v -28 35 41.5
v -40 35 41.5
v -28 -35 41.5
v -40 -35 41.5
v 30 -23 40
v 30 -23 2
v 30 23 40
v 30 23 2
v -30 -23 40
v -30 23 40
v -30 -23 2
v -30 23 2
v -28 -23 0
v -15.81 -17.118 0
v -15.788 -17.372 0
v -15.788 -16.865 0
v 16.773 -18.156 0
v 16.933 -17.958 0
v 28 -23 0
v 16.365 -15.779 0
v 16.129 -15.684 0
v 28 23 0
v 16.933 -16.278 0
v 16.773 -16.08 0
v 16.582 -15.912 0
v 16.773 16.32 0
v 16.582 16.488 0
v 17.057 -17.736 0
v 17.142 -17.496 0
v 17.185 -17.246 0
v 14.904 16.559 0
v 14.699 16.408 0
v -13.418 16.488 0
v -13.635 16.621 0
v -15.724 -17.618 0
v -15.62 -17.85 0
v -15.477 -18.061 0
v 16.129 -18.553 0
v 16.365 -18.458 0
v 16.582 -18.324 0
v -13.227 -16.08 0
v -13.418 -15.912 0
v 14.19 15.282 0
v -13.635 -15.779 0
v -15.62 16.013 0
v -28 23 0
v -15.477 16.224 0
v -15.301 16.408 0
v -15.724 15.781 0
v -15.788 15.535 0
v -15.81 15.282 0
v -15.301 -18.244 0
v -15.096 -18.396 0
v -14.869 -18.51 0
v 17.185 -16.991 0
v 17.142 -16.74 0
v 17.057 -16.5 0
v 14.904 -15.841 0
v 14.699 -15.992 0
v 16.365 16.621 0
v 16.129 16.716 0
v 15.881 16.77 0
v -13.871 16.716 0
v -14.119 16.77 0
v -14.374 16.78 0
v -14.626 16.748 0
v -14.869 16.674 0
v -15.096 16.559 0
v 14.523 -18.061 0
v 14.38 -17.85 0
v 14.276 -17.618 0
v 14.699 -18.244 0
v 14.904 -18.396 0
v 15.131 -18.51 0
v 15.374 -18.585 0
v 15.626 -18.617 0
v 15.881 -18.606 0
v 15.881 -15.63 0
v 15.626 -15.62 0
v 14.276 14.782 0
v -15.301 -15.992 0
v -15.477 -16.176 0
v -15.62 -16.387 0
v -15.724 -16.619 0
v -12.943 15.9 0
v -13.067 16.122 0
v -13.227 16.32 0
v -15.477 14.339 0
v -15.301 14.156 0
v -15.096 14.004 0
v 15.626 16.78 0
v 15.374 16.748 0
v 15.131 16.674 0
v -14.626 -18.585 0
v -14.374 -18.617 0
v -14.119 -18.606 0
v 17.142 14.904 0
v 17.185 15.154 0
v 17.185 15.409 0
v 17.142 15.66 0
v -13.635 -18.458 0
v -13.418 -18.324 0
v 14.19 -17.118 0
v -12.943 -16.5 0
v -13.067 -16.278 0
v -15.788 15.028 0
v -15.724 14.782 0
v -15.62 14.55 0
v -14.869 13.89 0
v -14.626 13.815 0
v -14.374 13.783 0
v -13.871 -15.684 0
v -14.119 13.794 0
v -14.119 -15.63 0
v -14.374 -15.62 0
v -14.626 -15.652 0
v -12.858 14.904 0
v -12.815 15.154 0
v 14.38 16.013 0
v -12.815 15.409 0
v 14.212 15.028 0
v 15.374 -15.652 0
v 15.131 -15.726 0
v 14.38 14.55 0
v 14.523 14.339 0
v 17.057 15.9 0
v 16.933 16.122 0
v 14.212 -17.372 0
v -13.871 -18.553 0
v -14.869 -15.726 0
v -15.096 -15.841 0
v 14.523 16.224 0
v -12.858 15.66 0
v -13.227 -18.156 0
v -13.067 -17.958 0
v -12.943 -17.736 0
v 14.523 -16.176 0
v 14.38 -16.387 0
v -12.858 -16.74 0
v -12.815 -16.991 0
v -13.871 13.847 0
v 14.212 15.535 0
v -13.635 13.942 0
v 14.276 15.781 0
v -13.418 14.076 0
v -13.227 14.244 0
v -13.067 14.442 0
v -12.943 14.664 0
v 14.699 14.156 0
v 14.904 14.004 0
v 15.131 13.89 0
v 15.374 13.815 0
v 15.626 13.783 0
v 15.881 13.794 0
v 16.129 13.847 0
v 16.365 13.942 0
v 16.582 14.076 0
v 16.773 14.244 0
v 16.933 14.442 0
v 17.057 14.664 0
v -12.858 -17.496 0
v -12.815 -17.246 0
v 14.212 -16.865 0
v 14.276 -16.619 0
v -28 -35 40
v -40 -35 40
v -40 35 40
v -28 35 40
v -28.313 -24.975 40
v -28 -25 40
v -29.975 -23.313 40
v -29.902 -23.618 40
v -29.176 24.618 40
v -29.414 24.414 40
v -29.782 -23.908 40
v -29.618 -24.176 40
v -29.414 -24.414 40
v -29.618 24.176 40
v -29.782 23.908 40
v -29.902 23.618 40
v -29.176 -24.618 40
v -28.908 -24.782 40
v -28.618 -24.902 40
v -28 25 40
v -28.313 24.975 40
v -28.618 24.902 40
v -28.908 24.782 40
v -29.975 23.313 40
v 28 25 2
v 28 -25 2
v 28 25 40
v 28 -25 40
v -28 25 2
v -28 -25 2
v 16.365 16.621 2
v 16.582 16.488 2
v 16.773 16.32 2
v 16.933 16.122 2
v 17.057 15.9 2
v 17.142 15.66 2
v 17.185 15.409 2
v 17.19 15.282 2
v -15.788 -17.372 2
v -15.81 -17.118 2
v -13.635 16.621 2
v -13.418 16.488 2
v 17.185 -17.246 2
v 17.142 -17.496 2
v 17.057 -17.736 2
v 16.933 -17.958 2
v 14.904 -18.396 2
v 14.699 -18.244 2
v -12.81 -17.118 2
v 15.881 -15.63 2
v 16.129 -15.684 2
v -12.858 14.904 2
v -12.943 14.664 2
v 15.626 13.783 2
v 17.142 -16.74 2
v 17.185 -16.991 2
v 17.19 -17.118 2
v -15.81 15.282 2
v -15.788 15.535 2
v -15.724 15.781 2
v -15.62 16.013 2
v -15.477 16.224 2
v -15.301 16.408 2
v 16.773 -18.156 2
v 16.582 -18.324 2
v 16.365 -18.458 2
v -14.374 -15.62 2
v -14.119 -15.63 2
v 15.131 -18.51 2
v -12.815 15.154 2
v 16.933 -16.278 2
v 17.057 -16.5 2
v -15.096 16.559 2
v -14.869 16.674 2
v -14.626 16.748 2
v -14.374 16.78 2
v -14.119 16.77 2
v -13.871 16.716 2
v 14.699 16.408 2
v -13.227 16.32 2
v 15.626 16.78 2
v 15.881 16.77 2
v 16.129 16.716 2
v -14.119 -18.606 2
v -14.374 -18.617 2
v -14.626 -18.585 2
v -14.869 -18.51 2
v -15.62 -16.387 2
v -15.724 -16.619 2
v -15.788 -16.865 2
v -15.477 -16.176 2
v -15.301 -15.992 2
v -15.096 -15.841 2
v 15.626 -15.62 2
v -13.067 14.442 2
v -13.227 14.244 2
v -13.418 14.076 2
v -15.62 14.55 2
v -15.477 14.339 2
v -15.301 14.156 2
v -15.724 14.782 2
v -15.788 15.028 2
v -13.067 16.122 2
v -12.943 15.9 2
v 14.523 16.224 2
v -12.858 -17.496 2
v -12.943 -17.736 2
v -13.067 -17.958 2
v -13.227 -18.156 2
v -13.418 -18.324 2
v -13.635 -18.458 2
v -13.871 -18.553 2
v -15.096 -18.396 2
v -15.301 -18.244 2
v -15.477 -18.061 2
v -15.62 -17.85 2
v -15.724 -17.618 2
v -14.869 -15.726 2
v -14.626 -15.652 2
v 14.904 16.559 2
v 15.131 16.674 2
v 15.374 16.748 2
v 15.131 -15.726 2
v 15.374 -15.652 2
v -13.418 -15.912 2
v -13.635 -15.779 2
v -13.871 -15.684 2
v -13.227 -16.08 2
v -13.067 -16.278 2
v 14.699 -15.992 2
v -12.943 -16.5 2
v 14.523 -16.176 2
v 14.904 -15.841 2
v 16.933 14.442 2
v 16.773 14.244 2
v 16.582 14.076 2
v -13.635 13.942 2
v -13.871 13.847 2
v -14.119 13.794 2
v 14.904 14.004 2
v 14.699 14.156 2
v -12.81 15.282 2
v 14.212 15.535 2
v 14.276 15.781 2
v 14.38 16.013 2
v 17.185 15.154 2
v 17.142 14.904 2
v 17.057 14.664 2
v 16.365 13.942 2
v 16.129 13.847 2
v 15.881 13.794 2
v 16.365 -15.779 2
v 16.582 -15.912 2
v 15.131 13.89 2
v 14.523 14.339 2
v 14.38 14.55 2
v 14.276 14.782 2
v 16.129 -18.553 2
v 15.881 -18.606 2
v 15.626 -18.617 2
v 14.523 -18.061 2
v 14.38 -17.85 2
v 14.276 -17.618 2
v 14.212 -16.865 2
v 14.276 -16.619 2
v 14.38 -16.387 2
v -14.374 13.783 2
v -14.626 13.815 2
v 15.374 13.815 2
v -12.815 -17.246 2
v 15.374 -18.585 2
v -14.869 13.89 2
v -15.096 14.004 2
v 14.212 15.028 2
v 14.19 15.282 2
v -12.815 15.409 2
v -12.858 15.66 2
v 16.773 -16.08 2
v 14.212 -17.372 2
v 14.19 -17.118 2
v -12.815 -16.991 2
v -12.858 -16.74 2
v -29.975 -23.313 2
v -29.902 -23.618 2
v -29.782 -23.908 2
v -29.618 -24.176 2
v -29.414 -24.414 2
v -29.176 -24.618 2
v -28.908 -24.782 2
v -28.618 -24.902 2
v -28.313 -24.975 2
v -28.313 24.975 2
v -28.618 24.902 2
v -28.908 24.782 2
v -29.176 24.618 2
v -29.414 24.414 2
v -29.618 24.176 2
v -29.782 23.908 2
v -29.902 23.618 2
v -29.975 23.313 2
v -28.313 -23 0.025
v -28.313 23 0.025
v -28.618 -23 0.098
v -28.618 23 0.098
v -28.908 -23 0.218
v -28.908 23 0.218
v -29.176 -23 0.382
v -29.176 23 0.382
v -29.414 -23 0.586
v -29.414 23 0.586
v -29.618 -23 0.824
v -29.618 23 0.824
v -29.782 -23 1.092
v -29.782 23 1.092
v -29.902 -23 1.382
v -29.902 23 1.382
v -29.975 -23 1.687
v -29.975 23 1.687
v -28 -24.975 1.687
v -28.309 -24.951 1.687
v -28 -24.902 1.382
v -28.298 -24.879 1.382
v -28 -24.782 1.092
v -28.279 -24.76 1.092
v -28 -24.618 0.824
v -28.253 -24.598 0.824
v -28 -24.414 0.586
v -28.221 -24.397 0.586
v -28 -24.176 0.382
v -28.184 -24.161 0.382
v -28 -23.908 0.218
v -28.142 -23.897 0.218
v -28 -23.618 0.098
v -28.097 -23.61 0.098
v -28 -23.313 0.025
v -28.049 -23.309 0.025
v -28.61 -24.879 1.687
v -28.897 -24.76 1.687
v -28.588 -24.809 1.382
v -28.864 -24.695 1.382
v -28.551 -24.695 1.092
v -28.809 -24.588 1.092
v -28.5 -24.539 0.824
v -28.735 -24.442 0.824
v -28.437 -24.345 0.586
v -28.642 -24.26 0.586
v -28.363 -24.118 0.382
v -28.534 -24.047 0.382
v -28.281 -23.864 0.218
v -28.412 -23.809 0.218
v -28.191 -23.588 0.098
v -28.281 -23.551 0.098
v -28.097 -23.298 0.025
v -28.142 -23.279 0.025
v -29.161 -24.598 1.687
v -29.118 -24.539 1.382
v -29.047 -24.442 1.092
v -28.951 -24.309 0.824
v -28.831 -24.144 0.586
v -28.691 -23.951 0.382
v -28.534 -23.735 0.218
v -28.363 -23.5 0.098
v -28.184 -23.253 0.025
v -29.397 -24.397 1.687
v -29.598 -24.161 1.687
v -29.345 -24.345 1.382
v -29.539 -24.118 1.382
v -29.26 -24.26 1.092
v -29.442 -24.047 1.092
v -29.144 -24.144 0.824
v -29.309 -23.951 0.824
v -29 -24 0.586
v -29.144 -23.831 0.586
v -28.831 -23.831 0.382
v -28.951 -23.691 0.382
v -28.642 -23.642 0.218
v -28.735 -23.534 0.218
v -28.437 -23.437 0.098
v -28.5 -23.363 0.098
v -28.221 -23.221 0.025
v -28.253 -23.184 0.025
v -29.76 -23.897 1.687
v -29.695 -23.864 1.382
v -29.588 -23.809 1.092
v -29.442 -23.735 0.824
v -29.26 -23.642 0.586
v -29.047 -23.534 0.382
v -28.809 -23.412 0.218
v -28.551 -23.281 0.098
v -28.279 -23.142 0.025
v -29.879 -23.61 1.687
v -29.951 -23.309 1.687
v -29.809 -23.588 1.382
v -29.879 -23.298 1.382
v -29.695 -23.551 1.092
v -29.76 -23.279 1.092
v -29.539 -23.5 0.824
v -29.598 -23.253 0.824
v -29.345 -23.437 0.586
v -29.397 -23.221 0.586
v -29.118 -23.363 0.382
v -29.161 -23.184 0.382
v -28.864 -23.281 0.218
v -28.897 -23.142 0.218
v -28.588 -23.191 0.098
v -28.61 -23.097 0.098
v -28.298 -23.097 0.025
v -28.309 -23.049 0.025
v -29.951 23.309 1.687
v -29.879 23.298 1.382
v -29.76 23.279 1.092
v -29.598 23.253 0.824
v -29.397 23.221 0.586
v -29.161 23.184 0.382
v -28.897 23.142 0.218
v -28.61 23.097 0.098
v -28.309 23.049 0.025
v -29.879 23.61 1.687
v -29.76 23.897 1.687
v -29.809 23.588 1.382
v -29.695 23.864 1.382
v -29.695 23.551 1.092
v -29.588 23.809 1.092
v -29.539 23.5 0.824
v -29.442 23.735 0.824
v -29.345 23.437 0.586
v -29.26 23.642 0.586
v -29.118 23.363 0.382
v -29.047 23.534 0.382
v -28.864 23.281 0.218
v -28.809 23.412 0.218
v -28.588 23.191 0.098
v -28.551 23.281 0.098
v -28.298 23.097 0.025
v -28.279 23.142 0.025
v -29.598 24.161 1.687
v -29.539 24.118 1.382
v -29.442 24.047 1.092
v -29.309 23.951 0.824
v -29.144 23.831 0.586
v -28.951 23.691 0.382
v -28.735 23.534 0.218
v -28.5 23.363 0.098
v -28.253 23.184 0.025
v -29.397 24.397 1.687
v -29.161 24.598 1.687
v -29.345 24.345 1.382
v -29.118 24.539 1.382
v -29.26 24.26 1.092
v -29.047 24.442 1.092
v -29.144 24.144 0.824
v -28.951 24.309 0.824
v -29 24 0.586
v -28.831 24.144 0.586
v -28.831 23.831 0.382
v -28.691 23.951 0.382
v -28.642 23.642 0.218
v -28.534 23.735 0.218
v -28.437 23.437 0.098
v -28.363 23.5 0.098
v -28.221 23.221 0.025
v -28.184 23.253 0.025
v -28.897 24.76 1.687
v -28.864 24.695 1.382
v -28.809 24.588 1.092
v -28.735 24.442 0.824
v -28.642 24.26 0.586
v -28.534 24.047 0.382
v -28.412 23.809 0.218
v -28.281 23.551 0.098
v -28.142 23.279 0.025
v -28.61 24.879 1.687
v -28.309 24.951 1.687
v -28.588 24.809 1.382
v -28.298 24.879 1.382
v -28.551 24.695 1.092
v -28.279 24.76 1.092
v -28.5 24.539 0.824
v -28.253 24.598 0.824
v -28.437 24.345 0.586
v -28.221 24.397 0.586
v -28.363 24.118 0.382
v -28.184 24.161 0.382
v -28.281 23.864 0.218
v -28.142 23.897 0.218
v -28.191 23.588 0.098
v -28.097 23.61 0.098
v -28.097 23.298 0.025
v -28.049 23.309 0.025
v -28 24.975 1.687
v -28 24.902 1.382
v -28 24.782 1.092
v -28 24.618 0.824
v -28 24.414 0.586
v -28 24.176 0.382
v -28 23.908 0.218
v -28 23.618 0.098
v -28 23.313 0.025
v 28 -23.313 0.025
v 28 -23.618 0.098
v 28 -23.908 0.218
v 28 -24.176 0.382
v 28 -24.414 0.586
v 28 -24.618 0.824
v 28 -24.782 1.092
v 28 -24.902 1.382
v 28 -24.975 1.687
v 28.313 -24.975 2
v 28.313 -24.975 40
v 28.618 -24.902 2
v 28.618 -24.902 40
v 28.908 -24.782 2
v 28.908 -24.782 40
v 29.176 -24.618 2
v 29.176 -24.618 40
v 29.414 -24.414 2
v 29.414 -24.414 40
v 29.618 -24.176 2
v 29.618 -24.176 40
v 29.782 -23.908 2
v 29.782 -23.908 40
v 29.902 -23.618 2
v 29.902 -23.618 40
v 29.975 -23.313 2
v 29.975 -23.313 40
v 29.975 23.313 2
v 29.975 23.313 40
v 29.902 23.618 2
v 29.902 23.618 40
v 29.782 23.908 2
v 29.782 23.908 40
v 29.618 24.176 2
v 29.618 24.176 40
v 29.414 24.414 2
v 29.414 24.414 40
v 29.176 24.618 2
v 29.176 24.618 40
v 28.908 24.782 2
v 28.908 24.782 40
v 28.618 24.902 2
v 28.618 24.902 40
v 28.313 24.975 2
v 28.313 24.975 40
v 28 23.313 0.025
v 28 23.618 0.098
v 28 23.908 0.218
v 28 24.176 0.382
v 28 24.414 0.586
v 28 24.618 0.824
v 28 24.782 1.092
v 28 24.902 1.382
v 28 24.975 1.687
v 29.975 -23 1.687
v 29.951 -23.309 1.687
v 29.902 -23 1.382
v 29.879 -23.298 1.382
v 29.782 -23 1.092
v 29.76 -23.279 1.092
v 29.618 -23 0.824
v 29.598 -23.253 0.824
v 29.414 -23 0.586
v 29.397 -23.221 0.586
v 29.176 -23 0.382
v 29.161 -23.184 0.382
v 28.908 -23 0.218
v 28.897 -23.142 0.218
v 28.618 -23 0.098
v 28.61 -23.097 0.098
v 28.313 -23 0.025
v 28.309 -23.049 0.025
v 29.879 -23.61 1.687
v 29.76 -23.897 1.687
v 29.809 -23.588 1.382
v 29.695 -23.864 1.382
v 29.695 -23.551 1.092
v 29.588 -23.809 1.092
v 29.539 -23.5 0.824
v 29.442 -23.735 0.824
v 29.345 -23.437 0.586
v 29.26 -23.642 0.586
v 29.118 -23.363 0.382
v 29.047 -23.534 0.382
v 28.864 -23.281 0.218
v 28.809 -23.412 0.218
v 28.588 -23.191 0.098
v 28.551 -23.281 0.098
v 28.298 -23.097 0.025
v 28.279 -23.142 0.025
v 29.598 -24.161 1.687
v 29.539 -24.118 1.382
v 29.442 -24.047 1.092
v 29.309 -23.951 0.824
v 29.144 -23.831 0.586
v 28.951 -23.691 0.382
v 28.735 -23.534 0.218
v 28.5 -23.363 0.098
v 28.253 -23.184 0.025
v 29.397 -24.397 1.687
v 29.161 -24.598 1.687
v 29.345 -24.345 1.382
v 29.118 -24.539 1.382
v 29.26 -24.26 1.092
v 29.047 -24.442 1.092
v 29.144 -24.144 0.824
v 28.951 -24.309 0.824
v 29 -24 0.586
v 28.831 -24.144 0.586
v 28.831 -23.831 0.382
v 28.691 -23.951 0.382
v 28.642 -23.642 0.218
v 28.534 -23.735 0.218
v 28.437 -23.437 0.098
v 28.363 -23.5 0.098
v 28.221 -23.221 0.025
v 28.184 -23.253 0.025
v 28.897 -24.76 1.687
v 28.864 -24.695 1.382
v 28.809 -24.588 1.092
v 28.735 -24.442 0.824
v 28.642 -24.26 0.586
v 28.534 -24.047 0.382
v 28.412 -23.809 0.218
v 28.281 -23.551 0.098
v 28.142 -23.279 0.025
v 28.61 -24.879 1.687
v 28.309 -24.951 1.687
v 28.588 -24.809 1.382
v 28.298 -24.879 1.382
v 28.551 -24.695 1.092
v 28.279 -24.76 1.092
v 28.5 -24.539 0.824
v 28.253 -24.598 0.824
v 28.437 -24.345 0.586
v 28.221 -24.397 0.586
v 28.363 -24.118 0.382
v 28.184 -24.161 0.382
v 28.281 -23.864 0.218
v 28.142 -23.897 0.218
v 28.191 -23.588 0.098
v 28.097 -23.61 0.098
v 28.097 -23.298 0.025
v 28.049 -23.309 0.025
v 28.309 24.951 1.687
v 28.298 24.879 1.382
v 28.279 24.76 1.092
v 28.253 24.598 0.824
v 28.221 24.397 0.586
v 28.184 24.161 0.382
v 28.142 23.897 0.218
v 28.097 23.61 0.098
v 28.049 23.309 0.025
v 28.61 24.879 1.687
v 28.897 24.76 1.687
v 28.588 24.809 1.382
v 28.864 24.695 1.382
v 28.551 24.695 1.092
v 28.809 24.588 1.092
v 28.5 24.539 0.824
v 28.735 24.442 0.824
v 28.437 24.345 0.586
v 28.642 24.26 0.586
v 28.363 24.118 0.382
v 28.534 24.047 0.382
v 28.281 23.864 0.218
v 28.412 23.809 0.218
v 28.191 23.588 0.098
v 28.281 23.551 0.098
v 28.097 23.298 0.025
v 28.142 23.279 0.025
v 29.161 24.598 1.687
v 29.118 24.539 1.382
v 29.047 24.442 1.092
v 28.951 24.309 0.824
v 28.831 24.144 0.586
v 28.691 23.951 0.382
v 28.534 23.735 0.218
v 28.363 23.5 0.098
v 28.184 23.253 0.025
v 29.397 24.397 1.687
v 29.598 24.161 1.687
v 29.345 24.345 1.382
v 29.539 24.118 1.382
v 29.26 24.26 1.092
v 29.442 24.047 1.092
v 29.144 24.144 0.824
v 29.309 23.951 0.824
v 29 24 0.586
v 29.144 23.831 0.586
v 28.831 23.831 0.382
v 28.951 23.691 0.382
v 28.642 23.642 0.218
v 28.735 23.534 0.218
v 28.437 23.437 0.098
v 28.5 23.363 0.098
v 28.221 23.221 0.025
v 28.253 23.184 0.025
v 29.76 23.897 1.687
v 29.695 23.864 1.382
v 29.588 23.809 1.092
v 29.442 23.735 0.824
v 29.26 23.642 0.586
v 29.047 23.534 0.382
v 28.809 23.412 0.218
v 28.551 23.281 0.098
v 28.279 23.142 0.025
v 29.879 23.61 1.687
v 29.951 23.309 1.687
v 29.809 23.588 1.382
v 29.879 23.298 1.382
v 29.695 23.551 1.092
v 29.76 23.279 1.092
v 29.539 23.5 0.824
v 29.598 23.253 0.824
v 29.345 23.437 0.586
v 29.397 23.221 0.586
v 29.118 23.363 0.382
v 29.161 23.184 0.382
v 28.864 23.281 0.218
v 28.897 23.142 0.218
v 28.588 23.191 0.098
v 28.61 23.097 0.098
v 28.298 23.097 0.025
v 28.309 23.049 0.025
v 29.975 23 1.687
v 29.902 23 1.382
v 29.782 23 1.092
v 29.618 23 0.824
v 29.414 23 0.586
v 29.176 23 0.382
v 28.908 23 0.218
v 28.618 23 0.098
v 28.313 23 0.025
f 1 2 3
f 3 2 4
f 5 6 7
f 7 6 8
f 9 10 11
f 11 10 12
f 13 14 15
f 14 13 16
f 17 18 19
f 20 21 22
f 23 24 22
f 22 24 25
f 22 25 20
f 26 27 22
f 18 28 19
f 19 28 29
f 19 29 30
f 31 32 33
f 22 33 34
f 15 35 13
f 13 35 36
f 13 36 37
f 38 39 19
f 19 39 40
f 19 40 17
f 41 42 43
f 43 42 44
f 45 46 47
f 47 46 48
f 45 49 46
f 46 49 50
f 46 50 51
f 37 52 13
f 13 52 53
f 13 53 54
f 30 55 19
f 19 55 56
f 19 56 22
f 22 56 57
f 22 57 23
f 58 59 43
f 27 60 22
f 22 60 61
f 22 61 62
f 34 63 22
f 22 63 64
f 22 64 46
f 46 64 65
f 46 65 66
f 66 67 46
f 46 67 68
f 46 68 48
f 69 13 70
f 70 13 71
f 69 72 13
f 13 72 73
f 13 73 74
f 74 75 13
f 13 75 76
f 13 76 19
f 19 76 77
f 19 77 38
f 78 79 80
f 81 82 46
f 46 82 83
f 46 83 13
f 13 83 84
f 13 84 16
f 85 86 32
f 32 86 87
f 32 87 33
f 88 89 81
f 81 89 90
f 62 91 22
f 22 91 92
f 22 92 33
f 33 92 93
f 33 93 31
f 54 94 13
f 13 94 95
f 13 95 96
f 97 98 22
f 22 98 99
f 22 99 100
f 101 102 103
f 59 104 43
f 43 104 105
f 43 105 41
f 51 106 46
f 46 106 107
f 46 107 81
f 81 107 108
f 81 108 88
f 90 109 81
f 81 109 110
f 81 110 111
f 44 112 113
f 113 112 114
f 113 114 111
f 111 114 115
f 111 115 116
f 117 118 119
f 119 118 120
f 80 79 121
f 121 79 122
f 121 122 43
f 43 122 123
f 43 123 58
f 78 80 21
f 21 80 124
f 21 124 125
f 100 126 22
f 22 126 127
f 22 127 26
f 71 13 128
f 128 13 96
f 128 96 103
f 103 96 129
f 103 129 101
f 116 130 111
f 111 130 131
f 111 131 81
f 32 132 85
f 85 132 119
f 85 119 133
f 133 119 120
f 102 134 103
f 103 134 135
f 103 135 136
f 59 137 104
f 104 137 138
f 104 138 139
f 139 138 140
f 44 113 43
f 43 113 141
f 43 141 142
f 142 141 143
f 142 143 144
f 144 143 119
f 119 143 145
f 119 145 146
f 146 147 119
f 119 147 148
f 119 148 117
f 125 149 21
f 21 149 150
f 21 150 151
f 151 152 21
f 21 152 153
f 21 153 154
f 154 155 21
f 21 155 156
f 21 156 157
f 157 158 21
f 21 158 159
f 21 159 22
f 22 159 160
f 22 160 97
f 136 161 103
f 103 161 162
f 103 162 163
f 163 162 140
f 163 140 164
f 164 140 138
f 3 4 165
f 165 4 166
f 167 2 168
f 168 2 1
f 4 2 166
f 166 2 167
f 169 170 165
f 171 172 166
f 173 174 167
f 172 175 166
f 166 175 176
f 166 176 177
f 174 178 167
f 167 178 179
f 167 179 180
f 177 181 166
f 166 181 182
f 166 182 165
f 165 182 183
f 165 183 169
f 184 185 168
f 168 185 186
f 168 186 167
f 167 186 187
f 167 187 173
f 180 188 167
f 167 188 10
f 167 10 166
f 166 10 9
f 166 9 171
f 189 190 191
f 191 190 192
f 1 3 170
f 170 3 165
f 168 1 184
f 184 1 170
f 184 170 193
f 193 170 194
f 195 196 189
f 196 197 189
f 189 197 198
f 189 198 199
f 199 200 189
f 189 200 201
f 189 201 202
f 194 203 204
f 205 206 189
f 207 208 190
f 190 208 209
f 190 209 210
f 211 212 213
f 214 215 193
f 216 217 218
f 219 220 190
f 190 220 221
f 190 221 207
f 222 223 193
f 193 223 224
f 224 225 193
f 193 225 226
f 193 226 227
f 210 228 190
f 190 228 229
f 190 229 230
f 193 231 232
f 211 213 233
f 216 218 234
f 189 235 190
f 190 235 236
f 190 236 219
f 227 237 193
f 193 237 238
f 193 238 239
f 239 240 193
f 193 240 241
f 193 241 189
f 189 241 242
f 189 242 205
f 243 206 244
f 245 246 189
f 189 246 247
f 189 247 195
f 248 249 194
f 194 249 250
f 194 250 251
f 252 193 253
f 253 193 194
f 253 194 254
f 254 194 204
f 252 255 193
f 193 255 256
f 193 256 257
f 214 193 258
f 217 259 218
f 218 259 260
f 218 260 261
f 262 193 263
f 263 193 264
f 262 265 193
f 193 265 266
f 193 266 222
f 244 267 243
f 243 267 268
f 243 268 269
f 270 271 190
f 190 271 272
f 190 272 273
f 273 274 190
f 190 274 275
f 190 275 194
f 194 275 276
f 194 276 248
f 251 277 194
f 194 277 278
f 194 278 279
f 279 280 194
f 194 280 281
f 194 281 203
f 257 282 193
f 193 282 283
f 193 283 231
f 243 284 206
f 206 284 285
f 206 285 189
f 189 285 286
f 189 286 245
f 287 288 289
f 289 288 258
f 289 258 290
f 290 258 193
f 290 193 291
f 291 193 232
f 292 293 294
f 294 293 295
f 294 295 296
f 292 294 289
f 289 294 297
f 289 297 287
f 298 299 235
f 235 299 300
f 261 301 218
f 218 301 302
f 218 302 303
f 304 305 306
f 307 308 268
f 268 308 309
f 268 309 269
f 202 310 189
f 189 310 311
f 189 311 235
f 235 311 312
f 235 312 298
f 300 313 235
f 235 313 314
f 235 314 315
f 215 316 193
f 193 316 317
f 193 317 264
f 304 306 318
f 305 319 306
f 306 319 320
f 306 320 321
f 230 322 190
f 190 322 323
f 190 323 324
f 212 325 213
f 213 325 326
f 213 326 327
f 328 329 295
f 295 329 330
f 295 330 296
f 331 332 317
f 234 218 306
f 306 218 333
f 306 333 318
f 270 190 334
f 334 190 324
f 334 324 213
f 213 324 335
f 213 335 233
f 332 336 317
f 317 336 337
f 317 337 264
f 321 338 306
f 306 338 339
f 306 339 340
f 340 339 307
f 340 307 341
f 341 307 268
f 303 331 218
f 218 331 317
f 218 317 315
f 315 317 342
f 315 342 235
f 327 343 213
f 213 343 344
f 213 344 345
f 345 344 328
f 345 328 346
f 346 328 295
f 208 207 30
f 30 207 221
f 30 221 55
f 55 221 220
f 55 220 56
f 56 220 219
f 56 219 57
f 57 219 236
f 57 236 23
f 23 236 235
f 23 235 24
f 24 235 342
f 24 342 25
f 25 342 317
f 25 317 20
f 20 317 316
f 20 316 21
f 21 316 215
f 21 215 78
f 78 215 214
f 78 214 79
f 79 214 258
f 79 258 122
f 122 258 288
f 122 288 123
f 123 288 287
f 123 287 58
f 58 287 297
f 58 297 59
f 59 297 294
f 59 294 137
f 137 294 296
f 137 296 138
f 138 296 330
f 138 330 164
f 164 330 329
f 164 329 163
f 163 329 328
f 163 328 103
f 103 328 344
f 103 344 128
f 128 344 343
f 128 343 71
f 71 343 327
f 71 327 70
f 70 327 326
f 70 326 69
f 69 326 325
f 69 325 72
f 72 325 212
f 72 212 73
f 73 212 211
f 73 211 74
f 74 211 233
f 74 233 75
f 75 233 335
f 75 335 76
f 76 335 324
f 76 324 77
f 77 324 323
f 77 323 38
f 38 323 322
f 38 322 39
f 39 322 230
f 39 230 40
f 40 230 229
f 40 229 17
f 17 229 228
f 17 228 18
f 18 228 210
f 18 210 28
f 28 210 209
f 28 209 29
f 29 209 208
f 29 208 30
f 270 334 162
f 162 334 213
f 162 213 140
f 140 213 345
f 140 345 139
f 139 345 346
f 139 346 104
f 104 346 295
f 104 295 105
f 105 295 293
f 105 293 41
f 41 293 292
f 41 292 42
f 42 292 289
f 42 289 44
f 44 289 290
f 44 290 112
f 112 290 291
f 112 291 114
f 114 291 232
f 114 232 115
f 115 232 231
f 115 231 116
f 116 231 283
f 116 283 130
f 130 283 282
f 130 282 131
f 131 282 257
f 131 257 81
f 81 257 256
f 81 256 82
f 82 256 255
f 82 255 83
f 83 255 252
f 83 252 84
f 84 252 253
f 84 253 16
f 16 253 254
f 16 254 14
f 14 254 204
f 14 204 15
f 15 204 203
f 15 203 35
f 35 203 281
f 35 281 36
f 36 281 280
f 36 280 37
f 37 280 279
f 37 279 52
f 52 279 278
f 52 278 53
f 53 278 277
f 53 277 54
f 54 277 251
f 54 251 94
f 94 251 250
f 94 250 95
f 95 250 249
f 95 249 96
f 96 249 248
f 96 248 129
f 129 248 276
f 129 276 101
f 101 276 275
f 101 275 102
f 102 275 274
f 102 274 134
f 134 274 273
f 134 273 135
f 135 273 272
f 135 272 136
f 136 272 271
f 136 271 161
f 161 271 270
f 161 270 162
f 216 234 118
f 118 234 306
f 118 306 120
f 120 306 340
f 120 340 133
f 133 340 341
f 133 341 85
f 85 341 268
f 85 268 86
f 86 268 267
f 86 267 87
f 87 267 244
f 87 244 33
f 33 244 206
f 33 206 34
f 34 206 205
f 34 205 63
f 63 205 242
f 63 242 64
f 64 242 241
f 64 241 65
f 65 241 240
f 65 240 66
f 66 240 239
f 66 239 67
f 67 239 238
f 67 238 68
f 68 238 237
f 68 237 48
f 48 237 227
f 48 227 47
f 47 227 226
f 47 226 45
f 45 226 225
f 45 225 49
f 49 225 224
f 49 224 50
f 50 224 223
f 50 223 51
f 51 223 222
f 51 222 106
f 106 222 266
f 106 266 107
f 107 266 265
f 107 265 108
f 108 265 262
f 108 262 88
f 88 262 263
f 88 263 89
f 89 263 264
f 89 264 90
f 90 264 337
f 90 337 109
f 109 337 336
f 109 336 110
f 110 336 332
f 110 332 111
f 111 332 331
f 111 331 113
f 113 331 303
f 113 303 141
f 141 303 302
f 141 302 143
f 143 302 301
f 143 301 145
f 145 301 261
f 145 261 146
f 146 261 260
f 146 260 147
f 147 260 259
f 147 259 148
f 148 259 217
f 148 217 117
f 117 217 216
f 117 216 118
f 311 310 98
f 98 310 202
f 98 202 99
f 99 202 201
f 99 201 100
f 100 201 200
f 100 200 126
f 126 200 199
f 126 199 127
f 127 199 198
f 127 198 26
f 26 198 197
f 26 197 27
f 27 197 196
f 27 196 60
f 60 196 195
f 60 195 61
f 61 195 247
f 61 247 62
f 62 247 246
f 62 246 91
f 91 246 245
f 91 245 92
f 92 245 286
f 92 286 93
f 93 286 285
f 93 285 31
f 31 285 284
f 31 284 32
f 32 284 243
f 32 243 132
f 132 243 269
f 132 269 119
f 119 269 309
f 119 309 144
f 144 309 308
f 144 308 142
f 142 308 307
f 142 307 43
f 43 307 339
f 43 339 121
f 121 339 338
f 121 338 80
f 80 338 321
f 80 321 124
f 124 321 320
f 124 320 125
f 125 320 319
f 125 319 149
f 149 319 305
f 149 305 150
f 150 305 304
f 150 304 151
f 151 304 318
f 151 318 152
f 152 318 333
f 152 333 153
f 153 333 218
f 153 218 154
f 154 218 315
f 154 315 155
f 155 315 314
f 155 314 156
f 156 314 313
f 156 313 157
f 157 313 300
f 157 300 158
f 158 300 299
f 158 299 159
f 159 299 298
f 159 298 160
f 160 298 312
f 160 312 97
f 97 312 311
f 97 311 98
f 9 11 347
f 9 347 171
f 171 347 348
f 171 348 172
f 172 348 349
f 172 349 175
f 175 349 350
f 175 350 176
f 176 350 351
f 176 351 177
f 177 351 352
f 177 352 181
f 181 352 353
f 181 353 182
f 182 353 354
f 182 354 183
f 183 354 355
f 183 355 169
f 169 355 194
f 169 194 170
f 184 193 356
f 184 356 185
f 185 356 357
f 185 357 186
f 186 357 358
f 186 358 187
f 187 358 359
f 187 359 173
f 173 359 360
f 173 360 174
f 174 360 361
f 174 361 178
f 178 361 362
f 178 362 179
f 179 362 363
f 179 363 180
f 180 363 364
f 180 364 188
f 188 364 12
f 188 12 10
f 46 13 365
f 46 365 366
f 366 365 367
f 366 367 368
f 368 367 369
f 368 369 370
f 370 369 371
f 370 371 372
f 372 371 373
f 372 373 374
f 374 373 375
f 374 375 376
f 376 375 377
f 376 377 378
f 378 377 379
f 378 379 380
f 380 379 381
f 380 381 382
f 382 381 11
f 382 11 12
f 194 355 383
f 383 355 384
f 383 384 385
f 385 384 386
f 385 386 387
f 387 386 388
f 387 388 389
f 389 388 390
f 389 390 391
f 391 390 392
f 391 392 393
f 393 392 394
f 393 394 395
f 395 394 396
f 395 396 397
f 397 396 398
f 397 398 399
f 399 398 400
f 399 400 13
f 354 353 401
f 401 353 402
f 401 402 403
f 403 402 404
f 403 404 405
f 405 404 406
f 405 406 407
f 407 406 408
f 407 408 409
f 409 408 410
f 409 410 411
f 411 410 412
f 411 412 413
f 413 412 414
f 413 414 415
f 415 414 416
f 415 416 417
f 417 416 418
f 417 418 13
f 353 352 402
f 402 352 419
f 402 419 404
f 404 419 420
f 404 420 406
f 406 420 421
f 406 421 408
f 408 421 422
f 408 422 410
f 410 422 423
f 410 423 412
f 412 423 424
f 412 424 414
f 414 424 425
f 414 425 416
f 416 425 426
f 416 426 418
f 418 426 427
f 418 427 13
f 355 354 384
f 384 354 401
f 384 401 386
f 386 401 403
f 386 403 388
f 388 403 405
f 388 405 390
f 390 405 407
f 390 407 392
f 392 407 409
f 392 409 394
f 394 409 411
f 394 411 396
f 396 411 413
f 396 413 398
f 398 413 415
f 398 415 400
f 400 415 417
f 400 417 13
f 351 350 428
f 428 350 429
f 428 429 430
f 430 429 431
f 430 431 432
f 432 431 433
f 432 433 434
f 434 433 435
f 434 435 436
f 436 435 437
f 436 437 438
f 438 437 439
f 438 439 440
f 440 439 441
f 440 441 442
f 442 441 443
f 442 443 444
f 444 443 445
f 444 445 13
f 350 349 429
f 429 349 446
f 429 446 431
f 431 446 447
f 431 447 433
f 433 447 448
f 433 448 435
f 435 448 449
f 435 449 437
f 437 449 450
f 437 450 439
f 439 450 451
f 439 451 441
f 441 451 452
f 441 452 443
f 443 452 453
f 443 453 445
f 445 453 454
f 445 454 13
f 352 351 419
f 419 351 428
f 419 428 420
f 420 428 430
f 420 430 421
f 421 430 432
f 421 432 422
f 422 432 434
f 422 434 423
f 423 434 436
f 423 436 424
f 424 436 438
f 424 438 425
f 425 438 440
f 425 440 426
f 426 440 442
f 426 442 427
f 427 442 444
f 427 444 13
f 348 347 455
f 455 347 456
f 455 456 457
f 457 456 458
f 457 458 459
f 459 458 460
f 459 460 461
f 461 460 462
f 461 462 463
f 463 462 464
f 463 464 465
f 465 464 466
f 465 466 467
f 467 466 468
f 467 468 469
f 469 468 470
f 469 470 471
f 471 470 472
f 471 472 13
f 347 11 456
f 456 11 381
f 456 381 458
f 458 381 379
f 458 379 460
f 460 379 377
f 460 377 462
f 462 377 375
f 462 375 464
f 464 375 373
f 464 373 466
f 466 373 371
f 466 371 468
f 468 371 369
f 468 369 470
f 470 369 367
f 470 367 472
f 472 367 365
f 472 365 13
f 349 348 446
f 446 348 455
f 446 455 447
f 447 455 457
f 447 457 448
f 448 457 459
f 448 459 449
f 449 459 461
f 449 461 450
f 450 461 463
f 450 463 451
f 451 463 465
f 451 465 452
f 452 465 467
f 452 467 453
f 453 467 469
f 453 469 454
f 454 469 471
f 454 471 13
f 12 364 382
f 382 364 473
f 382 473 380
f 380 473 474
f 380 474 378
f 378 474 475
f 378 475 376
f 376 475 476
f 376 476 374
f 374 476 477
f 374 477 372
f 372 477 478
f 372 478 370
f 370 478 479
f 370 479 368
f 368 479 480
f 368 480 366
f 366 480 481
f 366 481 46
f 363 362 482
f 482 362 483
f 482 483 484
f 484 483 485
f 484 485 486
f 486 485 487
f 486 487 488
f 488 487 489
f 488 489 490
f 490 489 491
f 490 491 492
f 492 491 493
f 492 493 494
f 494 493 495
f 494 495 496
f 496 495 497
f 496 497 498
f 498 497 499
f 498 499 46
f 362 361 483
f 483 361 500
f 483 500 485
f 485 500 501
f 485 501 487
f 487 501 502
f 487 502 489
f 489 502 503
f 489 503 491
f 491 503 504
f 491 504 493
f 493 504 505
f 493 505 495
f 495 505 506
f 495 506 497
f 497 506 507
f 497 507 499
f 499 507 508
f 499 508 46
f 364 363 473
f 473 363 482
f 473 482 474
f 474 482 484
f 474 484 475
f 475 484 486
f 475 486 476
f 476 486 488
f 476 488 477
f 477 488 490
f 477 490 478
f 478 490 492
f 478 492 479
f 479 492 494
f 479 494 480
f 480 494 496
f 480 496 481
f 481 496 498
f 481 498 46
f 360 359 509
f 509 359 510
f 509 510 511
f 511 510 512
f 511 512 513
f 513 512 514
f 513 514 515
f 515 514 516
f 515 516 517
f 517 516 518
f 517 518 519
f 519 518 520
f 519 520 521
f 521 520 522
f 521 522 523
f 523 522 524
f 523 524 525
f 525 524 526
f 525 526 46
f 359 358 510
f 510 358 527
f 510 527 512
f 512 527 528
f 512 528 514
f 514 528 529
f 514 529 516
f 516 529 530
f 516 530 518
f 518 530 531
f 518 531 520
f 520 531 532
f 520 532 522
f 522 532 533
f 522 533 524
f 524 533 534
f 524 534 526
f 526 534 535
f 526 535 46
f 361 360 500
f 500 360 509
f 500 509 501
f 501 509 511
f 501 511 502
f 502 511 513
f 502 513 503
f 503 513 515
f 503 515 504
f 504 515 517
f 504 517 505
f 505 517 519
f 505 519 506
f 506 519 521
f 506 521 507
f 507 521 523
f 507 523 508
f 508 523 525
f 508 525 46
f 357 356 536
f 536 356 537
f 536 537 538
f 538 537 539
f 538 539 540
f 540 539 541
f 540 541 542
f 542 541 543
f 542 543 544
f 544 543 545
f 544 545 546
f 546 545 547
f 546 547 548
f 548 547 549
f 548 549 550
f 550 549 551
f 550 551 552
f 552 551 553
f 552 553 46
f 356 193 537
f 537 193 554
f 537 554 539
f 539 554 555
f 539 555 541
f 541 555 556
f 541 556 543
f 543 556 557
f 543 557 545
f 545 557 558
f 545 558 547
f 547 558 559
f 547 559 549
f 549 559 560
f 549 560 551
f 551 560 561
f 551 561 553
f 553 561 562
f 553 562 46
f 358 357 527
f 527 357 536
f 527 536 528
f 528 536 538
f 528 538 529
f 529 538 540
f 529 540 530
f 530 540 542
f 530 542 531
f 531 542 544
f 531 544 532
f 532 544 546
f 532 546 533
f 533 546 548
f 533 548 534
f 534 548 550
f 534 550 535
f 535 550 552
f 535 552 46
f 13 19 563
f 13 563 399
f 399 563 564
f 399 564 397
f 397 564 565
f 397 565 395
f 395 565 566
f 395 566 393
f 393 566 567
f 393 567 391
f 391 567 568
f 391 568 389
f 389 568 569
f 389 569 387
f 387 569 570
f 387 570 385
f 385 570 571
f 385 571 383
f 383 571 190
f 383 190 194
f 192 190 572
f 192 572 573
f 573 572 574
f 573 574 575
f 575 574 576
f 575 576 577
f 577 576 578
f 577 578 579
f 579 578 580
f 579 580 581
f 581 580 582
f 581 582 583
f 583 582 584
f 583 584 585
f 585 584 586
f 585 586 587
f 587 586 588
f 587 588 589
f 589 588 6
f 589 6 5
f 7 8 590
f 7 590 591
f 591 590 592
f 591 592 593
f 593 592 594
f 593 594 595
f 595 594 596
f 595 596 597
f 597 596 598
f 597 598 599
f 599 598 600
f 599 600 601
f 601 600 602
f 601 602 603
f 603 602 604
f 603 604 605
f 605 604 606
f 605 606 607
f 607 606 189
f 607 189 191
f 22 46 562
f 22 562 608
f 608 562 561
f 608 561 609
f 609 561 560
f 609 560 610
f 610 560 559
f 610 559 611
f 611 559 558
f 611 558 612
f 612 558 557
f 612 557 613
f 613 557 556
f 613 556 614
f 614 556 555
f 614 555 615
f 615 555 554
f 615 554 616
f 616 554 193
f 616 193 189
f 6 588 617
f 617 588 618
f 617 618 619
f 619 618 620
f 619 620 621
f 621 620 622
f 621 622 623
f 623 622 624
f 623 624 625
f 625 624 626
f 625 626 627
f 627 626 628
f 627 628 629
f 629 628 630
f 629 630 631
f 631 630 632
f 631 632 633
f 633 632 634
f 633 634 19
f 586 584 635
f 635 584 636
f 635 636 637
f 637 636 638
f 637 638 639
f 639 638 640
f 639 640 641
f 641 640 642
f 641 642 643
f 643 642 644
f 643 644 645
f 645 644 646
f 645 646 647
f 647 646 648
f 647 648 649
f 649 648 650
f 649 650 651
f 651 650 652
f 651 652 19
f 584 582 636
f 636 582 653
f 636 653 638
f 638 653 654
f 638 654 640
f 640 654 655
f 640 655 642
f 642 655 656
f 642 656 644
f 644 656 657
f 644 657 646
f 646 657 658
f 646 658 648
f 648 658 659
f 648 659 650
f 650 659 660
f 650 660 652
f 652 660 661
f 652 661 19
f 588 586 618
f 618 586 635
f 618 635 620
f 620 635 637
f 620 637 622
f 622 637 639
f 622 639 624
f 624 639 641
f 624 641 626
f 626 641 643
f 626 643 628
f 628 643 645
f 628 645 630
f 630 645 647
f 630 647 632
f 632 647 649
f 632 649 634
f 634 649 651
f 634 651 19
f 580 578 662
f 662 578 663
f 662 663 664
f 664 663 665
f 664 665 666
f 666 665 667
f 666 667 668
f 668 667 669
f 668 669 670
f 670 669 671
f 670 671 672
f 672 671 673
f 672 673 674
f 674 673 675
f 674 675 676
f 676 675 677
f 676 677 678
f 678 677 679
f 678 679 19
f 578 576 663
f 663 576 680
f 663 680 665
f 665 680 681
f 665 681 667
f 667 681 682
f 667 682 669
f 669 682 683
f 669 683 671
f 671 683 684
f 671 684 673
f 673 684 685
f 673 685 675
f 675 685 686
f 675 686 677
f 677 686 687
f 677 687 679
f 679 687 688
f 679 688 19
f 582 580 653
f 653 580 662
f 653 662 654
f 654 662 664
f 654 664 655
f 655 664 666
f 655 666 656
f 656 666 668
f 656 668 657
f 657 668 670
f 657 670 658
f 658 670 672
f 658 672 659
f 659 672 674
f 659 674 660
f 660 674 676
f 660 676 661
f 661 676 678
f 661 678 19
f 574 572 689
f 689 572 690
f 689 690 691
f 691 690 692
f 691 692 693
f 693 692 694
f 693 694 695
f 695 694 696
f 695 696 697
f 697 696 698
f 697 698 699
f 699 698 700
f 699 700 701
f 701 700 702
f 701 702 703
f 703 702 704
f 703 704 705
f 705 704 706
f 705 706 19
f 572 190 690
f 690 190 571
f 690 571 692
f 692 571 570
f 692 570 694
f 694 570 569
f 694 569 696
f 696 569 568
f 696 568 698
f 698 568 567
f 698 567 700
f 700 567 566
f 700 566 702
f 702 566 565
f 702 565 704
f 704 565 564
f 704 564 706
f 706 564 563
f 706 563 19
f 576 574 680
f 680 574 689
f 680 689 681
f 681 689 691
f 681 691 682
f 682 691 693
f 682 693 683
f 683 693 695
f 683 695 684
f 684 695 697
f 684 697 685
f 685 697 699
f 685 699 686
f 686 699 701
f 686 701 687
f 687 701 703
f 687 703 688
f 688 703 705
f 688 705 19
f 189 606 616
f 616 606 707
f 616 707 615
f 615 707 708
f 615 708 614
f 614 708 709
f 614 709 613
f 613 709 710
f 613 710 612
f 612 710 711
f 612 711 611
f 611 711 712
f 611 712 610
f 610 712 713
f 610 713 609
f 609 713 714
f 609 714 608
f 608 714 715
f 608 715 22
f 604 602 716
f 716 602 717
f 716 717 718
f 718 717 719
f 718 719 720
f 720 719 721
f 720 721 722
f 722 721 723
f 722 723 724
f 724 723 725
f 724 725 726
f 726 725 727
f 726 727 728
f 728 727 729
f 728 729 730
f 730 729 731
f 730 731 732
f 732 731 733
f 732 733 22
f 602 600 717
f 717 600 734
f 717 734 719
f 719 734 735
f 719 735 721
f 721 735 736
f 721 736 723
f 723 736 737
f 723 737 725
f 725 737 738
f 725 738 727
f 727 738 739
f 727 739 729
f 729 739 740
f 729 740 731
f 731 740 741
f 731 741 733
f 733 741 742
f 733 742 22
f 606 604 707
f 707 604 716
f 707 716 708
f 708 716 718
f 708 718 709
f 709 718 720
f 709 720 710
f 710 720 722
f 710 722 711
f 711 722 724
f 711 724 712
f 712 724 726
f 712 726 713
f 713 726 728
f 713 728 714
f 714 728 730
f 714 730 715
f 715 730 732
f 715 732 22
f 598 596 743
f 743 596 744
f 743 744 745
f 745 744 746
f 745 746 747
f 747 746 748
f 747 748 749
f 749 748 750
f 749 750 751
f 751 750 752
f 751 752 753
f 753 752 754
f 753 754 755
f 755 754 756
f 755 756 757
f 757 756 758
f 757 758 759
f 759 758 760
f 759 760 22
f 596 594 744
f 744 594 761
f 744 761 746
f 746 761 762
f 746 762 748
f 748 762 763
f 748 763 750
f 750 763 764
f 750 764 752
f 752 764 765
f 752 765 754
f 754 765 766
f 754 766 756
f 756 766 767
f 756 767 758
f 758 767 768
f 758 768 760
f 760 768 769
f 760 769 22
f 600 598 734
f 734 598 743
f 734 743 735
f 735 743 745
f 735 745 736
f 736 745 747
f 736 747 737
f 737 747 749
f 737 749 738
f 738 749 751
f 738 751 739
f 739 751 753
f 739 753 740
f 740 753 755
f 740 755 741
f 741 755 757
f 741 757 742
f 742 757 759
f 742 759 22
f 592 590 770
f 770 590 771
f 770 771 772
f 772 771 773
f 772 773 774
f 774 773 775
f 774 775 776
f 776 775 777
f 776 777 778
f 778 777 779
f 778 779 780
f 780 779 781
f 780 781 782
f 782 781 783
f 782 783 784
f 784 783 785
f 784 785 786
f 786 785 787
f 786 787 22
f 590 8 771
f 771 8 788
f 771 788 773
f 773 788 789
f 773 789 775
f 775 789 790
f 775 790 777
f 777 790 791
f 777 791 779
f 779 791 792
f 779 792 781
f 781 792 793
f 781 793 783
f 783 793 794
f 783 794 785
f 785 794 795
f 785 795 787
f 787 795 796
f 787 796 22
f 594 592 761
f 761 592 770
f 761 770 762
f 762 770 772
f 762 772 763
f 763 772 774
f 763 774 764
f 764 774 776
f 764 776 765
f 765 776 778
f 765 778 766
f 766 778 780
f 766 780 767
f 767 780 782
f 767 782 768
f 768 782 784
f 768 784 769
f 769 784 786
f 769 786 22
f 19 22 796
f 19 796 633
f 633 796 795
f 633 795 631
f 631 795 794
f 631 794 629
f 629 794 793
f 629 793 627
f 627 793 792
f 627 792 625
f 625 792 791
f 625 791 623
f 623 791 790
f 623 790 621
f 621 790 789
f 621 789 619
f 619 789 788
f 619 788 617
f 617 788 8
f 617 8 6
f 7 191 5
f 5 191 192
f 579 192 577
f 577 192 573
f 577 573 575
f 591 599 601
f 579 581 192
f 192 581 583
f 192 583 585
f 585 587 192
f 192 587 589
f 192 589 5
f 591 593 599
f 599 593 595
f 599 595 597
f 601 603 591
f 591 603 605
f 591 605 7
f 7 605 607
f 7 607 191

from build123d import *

# Parameters (mm, degrees)
SKETCH1_W                 = 60
SKETCH1_H                 = 50
BOSS_EXTRUDE1_DEPTH       = 40
SKETCH2_W                 = 70
SKETCH2_H                 = 70
BOSS_EXTRUDE2_DEPTH       = 1.5
SHELL1_START              = -28
SHELL1_OUTLINE_W          = 46
SHELL1_OUTLINE_H          = 39.5
SHELL1_DEPTH              = 56
F_3_0MM_DOWEL_HOLE2_D     = 3
F_3_0MM_DOWEL_HOLE2_DEPTH = 41.499
FILLET1_R                 = 2
CUT_EXTRUDE2_DEPTH        = 84.200060096
CUT_EXTRUDE2_DEPTH_BACK   = 84.200060096
SKETCH8_W                 = 56
SKETCH8_H                 = 39.5
SKETCH9_W                 = 1.5
SKETCH9_H                 = 70
CUT_EXTRUDE3_DEPTH        = 2


# Read off the part's stored shape, not the designer's step: Shell1
with BuildPart() as part:
    # Sketch1 → Boss-Extrude1 (new body)
    with BuildSketch(Plane.XY):
        Rectangle(SKETCH1_W, SKETCH1_H)
    extrude(amount=BOSS_EXTRUDE1_DEPTH)

    # Sketch2 → Boss-Extrude2 (add)
    with BuildSketch(Plane.XY.offset(40)):
        with Locations((-5, 0)):
            Rectangle(SKETCH2_W, SKETCH2_H)
    extrude(amount=BOSS_EXTRUDE2_DEPTH)

    # Shell1 outline → Shell1 (cut)
    with BuildSketch(Plane.YZ.offset(SHELL1_START)):
        with Locations((0, 21.75)):
            Rectangle(SHELL1_OUTLINE_W, SHELL1_OUTLINE_H)
    extrude(amount=SHELL1_DEPTH, mode=Mode.SUBTRACT)

    # Ø3.0mm Dowel Hole2
    with Locations(Plane(origin=(-311.781139065, -231.688044449, 0), x_dir=(-1, 0, 0), z_dir=(0, 0, -1))):
        with Locations((-327.471139065, 246.969744449), (-297.471139065, 246.969744449), (-297.471139065, 214.569744449), (-327.471139065, 214.569744449)):
            Hole(F_3_0MM_DOWEL_HOLE2_D / 2, depth=F_3_0MM_DOWEL_HOLE2_DEPTH)

    # Fillet1
    fillet1_edges = [part.edges().sort_by_distance(p)[0] for p in [
        (0, -25, 0),
        (-30, 0, 0),
        (0, 25, 0),
        (30, 0, 0),
        (30, -25, 20),
        (-30, -25, 20),
        (-30, 25, 20),
        (30, 25, 20),
    ]]
    fillet(fillet1_edges, radius=FILLET1_R)

    # Sketch8 → Cut-Extrude2 (cut, two sides: drawn at the far end of the back side and taken through both)
    with BuildSketch(Plane.XZ.offset(25).offset(-CUT_EXTRUDE2_DEPTH_BACK)):
        with Locations((0, 21.75)):
            Rectangle(SKETCH8_W, SKETCH8_H)
    extrude(amount=CUT_EXTRUDE2_DEPTH + CUT_EXTRUDE2_DEPTH_BACK, mode=Mode.SUBTRACT)

    # Sketch9 → Cut-Extrude3 (cut)
    with BuildSketch(Plane(origin=(30, 0, 0), x_dir=(0, 0, -1), z_dir=(1, 0, 0))):
        with Locations((-40.75, 0)):
            Rectangle(SKETCH9_W, SKETCH9_H)
    extrude(amount=-CUT_EXTRUDE3_DEPTH, mode=Mode.SUBTRACT)


solid = part.part
